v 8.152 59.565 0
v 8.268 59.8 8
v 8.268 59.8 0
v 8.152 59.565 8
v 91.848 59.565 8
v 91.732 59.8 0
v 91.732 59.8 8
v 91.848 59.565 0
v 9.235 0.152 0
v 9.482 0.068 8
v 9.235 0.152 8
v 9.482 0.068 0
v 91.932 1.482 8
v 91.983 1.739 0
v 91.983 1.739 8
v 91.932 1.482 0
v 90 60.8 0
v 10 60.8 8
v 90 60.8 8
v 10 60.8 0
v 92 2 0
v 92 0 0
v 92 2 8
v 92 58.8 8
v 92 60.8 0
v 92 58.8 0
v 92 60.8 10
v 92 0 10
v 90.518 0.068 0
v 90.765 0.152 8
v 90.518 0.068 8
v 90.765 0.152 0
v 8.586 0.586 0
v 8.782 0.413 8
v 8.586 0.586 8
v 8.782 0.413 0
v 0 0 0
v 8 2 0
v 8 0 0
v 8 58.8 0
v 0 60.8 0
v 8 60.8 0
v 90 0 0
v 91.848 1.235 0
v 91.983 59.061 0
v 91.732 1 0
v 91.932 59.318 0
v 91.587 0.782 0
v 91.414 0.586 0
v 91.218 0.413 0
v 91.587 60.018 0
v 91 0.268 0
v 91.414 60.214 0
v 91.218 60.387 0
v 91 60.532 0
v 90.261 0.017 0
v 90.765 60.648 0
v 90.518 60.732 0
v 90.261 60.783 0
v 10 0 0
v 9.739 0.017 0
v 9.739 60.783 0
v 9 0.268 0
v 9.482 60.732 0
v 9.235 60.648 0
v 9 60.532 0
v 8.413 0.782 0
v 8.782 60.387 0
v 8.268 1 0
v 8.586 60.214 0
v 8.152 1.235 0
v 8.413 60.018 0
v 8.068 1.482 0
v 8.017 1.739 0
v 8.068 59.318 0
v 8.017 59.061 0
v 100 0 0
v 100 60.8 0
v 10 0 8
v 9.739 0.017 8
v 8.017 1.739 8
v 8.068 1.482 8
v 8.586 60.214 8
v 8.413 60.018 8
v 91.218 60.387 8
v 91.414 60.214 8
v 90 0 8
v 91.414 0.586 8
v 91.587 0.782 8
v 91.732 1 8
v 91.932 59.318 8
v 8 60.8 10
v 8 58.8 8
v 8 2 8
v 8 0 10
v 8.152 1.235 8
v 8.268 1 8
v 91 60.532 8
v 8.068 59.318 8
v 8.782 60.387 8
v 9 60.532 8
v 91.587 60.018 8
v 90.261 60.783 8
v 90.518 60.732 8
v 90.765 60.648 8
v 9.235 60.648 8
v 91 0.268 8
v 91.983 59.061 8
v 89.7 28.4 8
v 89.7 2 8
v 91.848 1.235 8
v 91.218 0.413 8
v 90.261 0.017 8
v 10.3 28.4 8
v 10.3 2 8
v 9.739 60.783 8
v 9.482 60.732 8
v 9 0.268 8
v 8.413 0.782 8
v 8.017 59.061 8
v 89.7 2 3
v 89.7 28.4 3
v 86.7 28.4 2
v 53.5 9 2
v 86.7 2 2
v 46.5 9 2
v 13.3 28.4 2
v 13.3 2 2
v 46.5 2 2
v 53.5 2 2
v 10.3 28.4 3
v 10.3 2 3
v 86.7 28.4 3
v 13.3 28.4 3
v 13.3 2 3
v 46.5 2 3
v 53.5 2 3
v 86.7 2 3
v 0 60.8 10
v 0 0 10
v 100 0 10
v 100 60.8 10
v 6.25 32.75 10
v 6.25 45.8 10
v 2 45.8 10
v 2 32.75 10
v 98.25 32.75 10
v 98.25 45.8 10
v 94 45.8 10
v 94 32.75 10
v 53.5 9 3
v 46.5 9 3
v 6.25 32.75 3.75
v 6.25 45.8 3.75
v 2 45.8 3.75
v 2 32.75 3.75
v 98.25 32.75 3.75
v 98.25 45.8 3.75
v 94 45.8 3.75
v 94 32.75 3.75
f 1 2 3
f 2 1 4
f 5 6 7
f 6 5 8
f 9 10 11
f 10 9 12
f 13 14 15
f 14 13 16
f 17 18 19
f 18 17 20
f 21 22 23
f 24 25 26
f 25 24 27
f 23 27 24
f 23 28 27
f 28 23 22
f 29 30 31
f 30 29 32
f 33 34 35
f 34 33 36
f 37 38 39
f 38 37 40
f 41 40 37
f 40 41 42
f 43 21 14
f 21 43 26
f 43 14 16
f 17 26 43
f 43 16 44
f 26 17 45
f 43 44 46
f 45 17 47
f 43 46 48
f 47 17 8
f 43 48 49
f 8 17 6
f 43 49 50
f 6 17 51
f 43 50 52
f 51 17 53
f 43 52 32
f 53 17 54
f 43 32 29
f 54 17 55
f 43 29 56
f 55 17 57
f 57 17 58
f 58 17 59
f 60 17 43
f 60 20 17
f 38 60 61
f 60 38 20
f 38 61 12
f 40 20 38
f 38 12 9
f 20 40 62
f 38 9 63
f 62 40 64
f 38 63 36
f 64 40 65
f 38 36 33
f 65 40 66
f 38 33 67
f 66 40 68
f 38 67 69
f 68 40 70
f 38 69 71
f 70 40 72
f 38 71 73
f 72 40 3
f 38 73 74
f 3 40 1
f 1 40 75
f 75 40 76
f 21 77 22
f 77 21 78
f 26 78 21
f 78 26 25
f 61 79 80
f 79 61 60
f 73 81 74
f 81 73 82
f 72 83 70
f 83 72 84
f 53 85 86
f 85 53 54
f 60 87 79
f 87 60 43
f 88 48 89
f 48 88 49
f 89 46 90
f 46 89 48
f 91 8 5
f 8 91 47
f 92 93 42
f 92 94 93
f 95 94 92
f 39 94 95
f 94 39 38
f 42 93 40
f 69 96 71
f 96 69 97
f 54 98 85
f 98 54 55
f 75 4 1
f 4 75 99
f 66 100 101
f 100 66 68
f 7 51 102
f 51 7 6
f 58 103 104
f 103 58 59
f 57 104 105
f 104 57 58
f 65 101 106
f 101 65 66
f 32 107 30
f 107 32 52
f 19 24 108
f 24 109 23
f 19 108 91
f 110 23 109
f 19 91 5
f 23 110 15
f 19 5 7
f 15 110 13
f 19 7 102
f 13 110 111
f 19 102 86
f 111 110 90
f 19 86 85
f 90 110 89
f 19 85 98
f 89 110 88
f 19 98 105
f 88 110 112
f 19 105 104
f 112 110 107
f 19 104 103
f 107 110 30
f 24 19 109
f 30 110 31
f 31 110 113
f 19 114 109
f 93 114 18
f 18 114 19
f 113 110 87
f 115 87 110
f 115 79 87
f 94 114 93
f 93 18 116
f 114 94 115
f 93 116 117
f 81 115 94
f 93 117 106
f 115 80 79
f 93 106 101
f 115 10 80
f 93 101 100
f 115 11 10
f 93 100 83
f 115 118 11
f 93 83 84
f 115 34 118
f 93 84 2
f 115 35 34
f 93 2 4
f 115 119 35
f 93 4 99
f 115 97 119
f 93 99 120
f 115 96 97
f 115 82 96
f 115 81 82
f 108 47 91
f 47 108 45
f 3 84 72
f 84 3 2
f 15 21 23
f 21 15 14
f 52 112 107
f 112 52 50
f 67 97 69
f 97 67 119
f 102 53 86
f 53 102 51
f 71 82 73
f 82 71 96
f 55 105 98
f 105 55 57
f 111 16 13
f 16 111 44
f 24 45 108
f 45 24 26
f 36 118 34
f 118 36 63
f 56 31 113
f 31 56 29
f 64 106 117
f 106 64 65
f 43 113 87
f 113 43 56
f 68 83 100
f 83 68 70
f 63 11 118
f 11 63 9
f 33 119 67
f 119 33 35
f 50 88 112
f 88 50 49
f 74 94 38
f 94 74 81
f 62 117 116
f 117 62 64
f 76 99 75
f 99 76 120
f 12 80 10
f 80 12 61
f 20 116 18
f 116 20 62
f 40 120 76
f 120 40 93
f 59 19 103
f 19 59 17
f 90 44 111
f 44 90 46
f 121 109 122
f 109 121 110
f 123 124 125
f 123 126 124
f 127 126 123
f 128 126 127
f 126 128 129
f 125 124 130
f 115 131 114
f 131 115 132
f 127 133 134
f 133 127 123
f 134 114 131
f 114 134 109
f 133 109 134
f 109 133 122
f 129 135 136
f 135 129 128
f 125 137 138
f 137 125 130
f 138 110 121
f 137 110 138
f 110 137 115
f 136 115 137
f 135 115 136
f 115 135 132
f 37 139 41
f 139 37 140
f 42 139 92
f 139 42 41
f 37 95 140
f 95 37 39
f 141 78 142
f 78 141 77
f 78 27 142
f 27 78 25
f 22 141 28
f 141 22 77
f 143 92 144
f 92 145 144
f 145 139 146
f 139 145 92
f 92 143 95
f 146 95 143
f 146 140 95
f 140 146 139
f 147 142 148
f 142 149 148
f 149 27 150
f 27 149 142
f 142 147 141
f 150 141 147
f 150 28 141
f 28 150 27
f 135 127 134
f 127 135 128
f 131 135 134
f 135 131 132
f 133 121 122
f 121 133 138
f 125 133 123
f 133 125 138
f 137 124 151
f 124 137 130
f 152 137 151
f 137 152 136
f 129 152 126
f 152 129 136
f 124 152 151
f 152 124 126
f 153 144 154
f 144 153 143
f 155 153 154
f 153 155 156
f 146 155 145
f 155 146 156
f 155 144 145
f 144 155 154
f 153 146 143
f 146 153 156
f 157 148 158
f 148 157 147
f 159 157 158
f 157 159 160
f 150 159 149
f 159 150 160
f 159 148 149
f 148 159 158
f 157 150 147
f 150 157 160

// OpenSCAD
// Open-top box for a 79 x 26 x 5 mm adapter PCB with room for a 2 mm lid above it.
// Side mount wings are separate parts that drop into vertical sockets on the box top.
// Units: millimeters.
//
// Coordinate system:
// X - board width, Y - board depth, Z - vertical.
// Origin is the outside corner of the bottom face (left/front/bottom).

$fn = 48;

/* [Part] */

render_part = "box"; // [box, lid, wing]

/* [Board Pocket] */

board_w = 79.0; // [60:0.1:100]
board_d = 26.0; // [15:0.1:50]
board_h = 5.0; // [2:0.1:12]
board_clearance = 0.4; // [0.1:0.1:1.5]

/* [Lid Pocket] */

lid_t = 2.0; // [1:0.1:5]
lid_clearance = 0.3; // [0.1:0.1:1]

/* [Box Shell] */

wall = 2.0; // [1.2:0.1:4]
corner_r = 2.0; // [0:0.5:6]

/* [Inner Retention Ledges] */

retention_h = 1.0; // [0.5:0.1:3]
retention_w = 3.0; // [1:0.5:8]
center_bump_size = 7.0; // [3:0.5:15]

/* [Mount Span] */

mount_span_w = 96.0; // [80:0.1:130]

/* [Screen Holder Mount Wings] */

wing_width = 4.0; // [2:0.5:10]
wing_height_z = 100.0; // [40:1:150]
pin_hole_clearance = 0.4; // [0.1:0.1:1]
wing_plug_depth = 4.0; // [2:0.5:10]
wing_plug_clearance = 0.25; // [0.05:0.05:0.6]
wing_socket_y_margin = 0.5; // [0:0.1:2]
wing_socket_cap_t = 2.0; // [1:0.5:5]
wing_socket_wall = 2.0; // [1:0.5:5]

/* [Derived Values] */

inner_w = board_w + board_clearance;
inner_d = board_d + board_clearance;
inner_h = board_h + lid_t - retention_h;
// Center shell width: pin-to-pin span minus both wing bosses (see mount_wing()).
outer_w_center = mount_span_w - 1.5 * (wing_width + 2 * wing_socket_wall);
wing_plug_w = wing_width;
wing_boss_w = wing_plug_w + 2 * wing_socket_wall;
total_outer_w = outer_w_center + 2 * wing_boss_w;
outer_d = 2 * (inner_d + 2 * wall);
outer_h = wall + inner_h;
wing_mount_z = outer_h + wing_socket_cap_t;
inner_origin_x_local = (outer_w_center - inner_w) / 2;
inner_origin_x = wing_boss_w + inner_origin_x_local;
inner_origin_y = wall;
holder_body_h = 78.5 * 0.50 + 4.0 + 0.6;
holder_pin_d = 2.4 + 5.0 + 2.0;
holder_pin_y = holder_body_h - holder_pin_d / 2;
holder_pin_z = wing_height_z - holder_pin_d / 2 - 2;
pin_hole_d = holder_pin_d + pin_hole_clearance;
wing_length_y = pin_hole_d + 4;
wing_y0 = holder_pin_y - wing_length_y / 2;
wing_plug_y = wing_length_y - 2 * wing_socket_y_margin;
wing_plug_total_depth = wing_socket_cap_t + wing_plug_depth;
wing_socket_depth = wing_plug_total_depth + wing_plug_clearance;
wing_panel_h = wing_height_z - wing_mount_z;
wing_pin_z = holder_pin_z - wing_mount_z;

module rounded_box_shell(w, d, h, r) {
    difference() {
        if(r <= 0) {
            cube([w, d, h]);
        } else {
            hull() {
                for(x = [r, w - r])
                    for(y = [r, d - r])
                        translate([x, y, 0])
                            cylinder(h = h, r = r);
            }
        }
        translate([inner_origin_x_local, inner_origin_y, wall])
            cube([inner_w, inner_d, inner_h + 0.1]);
    }
}

module inner_retention_ledges() {
    z0 = wall;

    translate([inner_origin_x, inner_origin_y, z0])
        cube([retention_w, inner_d, retention_h]);
    translate([inner_origin_x + inner_w - retention_w, inner_origin_y, z0])
        cube([retention_w, inner_d, retention_h]);
}

module inner_center_bumps() {
    x0 = inner_origin_x + (inner_w - center_bump_size) / 2;
    z0 = wall;

    translate([x0, inner_origin_y, z0])
        cube([center_bump_size, center_bump_size, retention_h]);
}

module side_bosses() {
    cube([wing_boss_w, outer_d, outer_h]);
    translate([wing_boss_w + outer_w_center, 0, 0])
        cube([wing_boss_w, outer_d, outer_h]);
}

module side_wing_caps() {
    // 2 mm top layer on wing bosses; vertical holes are cut separately.
    translate([0, 0, outer_h])
        cube([wing_boss_w, outer_d, wing_socket_cap_t]);
    translate([wing_boss_w + outer_w_center, 0, outer_h])
        cube([wing_boss_w, outer_d, wing_socket_cap_t]);
}

module wing_socket_cut_top(is_right) {
    boss_x0 = is_right ? (wing_boss_w + outer_w_center) : 0;
    plug_x = boss_x0 + (wing_boss_w - wing_plug_w) / 2;
    y0 = wing_y0 + wing_socket_y_margin;

    translate([plug_x, y0, outer_h + wing_socket_cap_t - wing_socket_depth])
        cube([
            wing_plug_w + wing_plug_clearance,
            wing_plug_y + wing_plug_clearance,
            wing_socket_depth + 0.1
        ]);
}

module wing_body() {
    // Print standing on the bed: plug at the bottom, panel above, pin hole through the panel.
    // Print two copies; mirror one in the slicer for the opposite side.
    pin_y = holder_pin_y - wing_y0;

    difference() {
        union() {
            translate([(wing_width - wing_plug_w) / 2, wing_socket_y_margin, 0])
                cube([wing_plug_w, wing_plug_y, wing_plug_total_depth]);
            translate([0, 0, wing_plug_total_depth])
                cube([wing_width, wing_length_y, wing_panel_h]);
        }

        translate([wing_width / 2, pin_y, wing_plug_total_depth + wing_pin_z])
            rotate([0, 90, 0])
                cylinder(h = wing_width + 0.2, d = pin_hole_d, center = true);
    }
}

module mount_wing(is_right) {
    boss_x0 = is_right ? (wing_boss_w + outer_w_center) : 0;
    plug_x = boss_x0 + (wing_boss_w - wing_plug_w) / 2;

    translate([plug_x, wing_y0, wing_mount_z])
        if(is_right) {
            mirror([1, 0, 0])
                translate([-wing_width, 0, 0])
                    wing_body();
        } else {
            translate([-wing_width, 0, 0])
                wing_body();
        }
}

module main_box_body() {
    difference() {
        union() {
            translate([wing_boss_w, 0, 0])
                rounded_box_shell(outer_w_center, outer_d, outer_h, corner_r);
            side_bosses();
            side_wing_caps();
            inner_retention_ledges();
            inner_center_bumps();
        }
        wing_socket_cut_top(false);
        wing_socket_cut_top(true);
    }
}

module box() {
    main_box_body();
}

module wing() {
    wing_body();
}

module lid() {
    rounded_plate(inner_w - 2 * lid_clearance, inner_d - 2 * lid_clearance, lid_t, max(corner_r - wall, 0));
}

module rounded_plate(w, h, t, r) {
    if(r <= 0) {
        cube([w, h, t]);
    } else {
        hull() {
            for(x = [r, w - r])
                for(y = [r, h - r])
                    translate([x, y, 0])
                        cylinder(h = t, r = r);
        }
    }
}

if(render_part == "box") {
    box();
} else if(render_part == "wing") {
    wing();
} else {
    lid();
}
